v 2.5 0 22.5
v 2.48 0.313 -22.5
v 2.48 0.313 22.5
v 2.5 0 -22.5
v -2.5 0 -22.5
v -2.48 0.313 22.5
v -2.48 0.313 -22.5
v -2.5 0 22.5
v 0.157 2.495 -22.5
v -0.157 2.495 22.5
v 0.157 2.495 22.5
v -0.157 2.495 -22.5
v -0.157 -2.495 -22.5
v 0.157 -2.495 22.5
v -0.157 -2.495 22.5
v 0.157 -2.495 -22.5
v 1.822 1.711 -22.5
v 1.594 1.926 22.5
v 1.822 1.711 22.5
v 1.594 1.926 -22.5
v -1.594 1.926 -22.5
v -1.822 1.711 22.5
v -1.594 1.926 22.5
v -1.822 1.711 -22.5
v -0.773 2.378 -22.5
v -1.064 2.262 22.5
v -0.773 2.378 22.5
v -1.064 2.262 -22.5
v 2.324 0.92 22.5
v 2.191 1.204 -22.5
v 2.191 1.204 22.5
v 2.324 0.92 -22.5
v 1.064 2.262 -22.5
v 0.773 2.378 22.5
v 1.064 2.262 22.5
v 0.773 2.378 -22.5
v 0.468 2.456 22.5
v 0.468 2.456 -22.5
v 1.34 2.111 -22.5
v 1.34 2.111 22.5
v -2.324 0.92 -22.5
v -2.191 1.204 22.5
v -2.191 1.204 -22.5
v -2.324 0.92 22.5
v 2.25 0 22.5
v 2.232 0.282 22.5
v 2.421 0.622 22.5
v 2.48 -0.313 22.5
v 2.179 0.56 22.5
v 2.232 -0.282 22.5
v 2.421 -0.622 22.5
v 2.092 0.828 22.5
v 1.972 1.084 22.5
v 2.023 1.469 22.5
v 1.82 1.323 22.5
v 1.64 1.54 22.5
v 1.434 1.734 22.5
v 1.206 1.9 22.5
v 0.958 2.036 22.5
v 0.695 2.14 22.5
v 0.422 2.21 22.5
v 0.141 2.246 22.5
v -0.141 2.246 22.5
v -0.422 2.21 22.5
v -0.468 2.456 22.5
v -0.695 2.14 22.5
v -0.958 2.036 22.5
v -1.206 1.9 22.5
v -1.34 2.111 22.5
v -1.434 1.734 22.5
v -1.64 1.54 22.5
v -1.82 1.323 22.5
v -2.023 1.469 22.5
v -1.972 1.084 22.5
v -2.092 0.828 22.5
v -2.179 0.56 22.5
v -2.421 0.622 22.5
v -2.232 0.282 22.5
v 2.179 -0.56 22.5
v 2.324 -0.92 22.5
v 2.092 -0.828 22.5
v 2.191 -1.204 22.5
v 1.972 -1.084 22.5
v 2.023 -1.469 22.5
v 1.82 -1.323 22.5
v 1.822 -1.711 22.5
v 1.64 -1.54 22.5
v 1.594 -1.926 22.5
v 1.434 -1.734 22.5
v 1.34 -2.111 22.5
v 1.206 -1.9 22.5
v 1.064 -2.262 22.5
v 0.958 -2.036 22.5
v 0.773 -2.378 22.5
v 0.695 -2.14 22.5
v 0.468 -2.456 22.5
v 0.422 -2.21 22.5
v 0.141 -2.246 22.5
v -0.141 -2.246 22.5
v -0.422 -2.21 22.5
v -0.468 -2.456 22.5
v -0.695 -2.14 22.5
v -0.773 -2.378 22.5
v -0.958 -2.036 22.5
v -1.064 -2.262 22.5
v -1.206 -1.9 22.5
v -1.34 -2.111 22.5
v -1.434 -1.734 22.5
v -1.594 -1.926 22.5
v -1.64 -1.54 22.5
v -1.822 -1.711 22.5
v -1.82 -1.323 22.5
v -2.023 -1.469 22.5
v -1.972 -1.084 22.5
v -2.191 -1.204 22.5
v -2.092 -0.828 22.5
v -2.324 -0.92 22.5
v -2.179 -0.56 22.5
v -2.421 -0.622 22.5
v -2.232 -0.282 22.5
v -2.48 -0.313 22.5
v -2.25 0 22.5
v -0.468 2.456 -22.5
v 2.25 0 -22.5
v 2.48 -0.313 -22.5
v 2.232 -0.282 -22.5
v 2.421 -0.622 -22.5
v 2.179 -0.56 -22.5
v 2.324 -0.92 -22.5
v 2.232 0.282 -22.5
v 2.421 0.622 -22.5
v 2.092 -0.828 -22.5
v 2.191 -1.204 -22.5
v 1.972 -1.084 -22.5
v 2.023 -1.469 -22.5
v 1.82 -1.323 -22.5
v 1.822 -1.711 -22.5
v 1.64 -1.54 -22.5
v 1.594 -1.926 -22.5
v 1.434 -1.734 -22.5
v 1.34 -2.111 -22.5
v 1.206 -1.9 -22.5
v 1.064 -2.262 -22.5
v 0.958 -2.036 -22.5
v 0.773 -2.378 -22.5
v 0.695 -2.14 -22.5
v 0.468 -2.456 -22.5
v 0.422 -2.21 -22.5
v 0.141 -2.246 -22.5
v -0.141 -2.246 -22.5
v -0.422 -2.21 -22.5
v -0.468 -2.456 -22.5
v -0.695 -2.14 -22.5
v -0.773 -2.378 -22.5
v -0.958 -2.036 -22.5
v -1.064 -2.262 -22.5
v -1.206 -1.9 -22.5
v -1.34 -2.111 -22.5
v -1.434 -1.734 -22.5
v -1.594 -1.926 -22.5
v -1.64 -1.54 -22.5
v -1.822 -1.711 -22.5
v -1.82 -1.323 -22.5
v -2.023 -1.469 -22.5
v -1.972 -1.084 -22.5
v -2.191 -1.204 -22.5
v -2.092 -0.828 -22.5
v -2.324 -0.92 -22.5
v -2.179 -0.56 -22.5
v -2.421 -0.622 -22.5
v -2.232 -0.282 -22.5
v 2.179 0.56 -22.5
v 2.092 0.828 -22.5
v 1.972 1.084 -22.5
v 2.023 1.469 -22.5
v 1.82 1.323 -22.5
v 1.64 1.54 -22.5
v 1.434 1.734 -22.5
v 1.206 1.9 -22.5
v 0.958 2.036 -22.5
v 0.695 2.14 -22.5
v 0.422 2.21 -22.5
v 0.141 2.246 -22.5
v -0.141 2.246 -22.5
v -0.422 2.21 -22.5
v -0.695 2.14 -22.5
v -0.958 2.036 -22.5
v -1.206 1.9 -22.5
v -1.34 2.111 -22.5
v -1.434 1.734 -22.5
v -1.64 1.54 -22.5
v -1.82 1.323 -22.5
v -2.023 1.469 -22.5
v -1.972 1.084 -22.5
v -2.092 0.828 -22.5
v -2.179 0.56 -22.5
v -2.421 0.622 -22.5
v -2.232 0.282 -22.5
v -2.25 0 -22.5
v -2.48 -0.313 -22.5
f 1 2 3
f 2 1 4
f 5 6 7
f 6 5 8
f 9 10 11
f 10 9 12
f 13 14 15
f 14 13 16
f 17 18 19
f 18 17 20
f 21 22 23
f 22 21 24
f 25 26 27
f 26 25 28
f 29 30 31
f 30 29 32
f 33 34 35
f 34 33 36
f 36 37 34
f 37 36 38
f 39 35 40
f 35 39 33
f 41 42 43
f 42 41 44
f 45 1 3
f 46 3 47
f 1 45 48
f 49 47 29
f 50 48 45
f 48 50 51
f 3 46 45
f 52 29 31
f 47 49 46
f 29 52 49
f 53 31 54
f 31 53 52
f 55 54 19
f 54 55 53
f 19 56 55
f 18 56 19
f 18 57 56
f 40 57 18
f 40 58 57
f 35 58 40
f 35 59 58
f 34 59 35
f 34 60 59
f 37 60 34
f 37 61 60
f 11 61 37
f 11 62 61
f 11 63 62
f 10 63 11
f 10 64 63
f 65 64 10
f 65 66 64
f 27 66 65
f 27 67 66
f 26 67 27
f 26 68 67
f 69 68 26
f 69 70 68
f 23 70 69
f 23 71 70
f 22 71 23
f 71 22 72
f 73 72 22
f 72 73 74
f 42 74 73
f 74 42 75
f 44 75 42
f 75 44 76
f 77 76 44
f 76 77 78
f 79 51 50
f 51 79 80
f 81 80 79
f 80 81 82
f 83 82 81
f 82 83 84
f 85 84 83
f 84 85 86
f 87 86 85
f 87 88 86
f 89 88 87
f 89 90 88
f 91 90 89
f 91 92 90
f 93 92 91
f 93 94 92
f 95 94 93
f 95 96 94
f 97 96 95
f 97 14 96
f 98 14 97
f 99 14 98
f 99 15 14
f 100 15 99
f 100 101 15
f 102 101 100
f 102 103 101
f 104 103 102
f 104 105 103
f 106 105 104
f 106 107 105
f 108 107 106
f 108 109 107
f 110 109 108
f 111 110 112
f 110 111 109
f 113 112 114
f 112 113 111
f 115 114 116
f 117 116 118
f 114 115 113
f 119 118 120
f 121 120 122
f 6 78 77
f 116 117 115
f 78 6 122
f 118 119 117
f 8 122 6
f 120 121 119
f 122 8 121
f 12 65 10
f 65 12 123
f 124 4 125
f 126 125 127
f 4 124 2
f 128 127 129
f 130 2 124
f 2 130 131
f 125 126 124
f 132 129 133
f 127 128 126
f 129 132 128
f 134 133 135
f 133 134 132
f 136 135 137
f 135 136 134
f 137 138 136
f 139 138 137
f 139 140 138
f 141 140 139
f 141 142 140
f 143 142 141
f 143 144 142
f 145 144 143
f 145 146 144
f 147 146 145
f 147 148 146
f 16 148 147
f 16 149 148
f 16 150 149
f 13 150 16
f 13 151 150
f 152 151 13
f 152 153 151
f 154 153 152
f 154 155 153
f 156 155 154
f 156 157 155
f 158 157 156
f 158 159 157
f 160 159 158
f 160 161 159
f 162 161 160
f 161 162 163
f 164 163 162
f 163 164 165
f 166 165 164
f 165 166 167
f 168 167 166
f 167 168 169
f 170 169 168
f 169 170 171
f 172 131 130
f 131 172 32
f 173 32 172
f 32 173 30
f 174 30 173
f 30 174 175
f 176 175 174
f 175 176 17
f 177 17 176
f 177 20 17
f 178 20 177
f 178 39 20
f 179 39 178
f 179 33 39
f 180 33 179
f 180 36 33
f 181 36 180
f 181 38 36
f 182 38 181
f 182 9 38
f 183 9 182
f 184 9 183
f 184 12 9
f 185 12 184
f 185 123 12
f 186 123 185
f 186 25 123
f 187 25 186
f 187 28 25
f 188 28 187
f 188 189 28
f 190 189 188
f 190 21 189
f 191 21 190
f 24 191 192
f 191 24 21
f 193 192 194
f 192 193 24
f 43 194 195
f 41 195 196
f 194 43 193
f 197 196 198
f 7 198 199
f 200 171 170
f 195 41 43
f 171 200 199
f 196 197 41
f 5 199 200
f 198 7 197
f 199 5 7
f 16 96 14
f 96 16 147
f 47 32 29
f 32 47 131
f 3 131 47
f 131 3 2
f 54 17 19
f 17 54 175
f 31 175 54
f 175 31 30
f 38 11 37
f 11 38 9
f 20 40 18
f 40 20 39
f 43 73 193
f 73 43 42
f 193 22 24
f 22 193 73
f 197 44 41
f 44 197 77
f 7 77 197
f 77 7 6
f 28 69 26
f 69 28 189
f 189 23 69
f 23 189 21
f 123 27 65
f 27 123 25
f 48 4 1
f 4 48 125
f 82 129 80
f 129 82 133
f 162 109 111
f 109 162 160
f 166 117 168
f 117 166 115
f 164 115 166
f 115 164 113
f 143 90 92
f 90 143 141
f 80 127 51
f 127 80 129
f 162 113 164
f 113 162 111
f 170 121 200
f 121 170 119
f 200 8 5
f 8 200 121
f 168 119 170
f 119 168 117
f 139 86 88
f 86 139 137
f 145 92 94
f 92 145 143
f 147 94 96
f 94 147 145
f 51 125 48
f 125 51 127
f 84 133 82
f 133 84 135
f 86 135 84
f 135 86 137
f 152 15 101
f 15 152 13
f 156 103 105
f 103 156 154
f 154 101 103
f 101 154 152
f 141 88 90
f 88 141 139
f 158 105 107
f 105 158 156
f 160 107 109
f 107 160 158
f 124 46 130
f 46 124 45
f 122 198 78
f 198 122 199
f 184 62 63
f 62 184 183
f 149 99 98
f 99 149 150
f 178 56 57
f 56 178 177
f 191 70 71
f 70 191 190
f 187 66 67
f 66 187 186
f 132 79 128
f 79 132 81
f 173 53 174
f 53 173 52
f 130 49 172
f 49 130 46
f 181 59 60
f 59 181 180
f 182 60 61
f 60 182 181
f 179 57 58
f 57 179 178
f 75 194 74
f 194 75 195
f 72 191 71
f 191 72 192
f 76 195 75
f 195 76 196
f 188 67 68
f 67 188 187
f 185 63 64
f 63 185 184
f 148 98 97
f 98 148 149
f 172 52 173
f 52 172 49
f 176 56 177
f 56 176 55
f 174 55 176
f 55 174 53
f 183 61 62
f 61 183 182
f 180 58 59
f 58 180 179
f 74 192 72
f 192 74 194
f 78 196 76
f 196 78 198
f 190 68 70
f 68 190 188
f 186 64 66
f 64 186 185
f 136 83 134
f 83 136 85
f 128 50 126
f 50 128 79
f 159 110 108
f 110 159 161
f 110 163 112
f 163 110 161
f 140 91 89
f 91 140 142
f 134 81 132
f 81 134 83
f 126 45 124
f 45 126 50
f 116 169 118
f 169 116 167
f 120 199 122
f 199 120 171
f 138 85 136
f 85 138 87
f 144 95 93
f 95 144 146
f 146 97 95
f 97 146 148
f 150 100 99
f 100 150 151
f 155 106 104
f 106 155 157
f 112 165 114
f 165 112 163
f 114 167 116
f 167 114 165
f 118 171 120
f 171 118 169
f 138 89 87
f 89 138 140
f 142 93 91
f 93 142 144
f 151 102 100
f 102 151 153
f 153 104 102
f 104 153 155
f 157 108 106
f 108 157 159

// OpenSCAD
$fn = 50;


difference() {
	union() {
		translate(v = [0, 0, -22.5000000000]) {
			cylinder(h = 45, r = 2.5000000000);
		}
	}
	union() {
		translate(v = [0, 0, -100.0000000000]) {
			cylinder(h = 200, r = 2.2500000000);
		}
	}
}
